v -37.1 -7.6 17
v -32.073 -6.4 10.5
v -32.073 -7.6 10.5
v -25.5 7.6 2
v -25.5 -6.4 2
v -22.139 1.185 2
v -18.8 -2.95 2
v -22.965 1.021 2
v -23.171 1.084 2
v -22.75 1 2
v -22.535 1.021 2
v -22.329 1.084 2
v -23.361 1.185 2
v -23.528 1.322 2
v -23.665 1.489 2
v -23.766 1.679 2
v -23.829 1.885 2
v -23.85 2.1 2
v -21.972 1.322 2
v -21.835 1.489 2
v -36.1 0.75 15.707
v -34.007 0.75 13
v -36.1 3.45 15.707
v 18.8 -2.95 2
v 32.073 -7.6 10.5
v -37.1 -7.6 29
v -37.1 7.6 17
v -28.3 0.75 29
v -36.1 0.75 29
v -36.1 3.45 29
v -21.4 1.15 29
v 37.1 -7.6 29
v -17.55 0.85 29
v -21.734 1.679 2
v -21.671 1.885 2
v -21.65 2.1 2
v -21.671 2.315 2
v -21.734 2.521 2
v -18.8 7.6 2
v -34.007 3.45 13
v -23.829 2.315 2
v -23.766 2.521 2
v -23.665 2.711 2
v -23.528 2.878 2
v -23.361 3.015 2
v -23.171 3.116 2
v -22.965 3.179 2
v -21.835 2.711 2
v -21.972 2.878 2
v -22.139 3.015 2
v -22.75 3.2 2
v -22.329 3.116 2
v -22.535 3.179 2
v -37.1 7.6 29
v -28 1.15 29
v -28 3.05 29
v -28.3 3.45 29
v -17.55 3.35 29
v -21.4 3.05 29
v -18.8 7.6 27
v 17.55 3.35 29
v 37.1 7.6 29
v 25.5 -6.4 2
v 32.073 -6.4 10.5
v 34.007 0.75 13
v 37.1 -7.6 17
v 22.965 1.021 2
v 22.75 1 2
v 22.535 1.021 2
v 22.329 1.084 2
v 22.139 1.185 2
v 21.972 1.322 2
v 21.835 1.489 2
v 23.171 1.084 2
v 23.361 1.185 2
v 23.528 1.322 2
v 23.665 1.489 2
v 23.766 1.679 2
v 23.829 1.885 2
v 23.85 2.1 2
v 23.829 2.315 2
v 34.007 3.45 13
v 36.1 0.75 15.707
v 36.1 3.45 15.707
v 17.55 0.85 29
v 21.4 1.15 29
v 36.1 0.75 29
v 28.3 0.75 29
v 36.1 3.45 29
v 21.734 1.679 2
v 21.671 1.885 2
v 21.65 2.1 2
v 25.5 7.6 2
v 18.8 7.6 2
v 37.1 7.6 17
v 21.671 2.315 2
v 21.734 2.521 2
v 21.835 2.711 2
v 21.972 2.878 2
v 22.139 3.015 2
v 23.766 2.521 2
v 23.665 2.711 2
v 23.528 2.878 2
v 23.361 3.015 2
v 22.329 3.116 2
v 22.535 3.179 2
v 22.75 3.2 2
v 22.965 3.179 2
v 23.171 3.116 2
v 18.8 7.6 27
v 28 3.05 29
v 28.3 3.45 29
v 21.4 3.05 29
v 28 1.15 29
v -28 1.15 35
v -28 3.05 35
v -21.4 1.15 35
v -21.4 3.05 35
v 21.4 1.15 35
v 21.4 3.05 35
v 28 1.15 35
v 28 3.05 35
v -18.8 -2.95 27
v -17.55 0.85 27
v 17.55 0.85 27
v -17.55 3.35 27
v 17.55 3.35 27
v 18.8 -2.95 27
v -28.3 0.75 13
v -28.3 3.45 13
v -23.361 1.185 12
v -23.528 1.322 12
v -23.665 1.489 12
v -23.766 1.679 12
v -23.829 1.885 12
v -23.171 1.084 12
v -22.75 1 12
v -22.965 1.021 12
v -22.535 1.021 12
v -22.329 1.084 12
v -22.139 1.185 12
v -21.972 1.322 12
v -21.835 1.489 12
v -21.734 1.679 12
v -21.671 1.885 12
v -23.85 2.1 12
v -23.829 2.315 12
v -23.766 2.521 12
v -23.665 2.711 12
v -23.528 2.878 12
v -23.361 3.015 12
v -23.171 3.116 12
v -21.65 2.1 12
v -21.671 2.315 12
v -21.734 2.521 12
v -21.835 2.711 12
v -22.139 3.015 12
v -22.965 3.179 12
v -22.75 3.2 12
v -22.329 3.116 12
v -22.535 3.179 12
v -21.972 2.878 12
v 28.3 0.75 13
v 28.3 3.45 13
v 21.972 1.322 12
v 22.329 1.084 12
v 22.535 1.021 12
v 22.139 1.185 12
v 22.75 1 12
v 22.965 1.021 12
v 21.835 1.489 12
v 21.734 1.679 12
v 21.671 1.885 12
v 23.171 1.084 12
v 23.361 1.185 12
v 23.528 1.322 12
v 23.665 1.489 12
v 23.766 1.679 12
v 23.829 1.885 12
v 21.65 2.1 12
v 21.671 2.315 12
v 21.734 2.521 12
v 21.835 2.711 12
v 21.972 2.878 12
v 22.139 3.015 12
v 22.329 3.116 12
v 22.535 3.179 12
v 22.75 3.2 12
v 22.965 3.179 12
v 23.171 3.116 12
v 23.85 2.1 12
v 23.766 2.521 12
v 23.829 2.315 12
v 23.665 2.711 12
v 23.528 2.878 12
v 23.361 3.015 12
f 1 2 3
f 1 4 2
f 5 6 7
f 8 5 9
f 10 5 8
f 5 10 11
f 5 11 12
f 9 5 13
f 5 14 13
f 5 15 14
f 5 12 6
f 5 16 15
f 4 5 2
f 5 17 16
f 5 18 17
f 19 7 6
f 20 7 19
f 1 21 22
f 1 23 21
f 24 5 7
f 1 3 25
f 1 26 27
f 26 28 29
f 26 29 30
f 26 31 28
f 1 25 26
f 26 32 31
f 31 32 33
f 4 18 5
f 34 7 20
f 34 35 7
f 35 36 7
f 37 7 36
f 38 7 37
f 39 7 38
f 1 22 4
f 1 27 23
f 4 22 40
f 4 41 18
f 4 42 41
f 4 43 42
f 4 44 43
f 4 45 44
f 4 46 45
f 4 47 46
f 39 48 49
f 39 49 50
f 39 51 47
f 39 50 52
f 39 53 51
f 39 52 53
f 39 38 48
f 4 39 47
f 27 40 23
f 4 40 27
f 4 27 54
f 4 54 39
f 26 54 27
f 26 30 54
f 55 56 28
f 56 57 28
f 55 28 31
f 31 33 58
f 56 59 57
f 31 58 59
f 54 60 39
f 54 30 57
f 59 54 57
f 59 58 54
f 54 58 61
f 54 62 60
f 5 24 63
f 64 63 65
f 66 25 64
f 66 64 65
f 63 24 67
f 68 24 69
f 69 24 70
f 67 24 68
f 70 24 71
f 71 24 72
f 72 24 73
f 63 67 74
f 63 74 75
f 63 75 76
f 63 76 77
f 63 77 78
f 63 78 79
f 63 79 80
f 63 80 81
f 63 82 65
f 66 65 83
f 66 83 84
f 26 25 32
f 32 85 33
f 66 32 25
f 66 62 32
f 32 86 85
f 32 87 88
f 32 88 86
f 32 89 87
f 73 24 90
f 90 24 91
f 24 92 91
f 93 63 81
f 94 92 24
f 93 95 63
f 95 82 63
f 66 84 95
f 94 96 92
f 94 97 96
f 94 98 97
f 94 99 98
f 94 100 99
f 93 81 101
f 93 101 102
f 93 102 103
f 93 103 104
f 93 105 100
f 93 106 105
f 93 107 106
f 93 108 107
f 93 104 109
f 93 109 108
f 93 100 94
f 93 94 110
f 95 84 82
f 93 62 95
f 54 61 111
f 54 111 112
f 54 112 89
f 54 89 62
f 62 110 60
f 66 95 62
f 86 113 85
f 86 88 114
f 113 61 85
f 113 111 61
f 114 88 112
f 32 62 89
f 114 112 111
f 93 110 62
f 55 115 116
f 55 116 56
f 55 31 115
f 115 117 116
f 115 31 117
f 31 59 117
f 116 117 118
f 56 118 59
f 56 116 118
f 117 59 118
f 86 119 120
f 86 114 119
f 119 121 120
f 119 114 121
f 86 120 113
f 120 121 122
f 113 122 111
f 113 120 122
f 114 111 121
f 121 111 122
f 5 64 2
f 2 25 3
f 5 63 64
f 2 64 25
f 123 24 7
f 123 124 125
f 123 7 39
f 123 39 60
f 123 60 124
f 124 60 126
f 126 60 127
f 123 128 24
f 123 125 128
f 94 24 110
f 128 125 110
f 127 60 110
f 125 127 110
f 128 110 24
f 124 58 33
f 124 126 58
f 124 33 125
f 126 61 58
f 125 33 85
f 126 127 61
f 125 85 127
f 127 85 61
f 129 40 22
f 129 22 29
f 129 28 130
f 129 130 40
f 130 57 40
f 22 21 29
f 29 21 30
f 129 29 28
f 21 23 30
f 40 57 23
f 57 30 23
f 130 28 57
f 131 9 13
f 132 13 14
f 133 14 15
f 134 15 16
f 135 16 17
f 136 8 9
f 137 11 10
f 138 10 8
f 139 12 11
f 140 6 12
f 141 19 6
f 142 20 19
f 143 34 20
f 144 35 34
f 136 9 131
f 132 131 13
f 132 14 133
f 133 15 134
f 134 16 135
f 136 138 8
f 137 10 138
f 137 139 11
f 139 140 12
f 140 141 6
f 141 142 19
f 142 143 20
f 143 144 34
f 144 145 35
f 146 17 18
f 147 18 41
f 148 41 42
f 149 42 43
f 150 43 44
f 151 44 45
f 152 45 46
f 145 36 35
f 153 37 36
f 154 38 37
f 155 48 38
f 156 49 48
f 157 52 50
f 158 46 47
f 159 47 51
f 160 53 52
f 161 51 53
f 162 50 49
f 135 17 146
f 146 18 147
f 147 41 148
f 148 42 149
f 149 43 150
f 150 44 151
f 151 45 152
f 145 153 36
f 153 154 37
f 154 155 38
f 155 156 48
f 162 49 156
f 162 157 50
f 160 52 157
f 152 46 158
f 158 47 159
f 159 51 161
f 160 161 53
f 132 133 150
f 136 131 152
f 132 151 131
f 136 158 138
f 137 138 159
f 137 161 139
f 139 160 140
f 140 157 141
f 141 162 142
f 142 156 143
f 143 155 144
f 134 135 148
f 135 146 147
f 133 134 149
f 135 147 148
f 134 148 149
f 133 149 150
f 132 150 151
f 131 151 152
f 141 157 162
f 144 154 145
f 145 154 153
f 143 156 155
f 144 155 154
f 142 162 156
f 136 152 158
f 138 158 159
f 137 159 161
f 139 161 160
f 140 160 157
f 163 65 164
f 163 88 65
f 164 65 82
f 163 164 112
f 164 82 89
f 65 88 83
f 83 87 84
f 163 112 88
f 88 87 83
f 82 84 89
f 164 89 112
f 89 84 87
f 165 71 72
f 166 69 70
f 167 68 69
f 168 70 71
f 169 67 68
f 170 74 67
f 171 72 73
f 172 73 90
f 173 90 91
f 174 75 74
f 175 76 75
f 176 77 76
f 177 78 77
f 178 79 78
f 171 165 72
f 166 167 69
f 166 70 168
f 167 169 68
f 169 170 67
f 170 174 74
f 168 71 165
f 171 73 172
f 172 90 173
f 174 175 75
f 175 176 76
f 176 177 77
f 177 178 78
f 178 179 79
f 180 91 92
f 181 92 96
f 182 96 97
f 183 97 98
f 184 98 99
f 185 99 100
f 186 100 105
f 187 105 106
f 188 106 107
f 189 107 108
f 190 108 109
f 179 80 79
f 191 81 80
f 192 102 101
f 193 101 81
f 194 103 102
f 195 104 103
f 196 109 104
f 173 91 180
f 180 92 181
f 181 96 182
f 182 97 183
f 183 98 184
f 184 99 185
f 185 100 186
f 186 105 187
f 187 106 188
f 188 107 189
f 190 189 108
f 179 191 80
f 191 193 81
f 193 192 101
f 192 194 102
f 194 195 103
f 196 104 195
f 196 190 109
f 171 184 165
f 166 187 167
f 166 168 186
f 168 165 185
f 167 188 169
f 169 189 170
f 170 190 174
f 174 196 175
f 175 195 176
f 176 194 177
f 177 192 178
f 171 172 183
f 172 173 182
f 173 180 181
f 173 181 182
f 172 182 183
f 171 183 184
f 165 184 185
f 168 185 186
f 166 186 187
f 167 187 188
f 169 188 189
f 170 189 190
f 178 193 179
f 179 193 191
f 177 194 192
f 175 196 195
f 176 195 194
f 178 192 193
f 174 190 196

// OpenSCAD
// Cartridge guide (cap) for slot B on pin headers, draft 5 (see ../guide-drawing/).
// Sleeve, slit, key holes and door openers taken from vcsslot.stl
// (RabbitEngineering, Thingiverse 618065, CC BY-NC).
// x = along the slot, y = across (side A negative, side B positive), z = up from the PCB.
// Print upright, feet on the bed.

slot_top   = 27.0;    // slot B top above the PCB (measured)
plate      = 2.0;     // closed top, rests on the slot
gap        = 2.0;     // gap under the feet; the screws pull the cap onto the slot
top        = slot_top + plate;
cap_l      = 74.2;    // sleeve length (vcsslot)
cap_w      = 15.2;    // sleeve width (vcsslot)
off        = 2.1;     // slit centre towards side B (vcsslot 2.06)
full_z     = 17.0;    // full length above this height
foot_x     = 25.5;    // half length of the foot
band       = 8.5;     // below step_z max. 8.5 from slot centre (free area 61 x 17)
step_z     = slot_top + plate - 18.5;   // cartridge shell bottom
cav_l      = 37.0 + 0.6;
cav_w      = 9.5 + 0.6;
slit_l     = 35.1;
slit_w     = 2.5;
nub_x0     = 28.3;  nub_x1 = 36.1;  nub_w = 2.7;  nub_depth = 16;
opn_x0     = 21.4;  opn_x1 = 28.0;  opn_t = 1.9;  opn_h = 6.0;
hole_x     = 22.75; screw_d = 2.2;  screw_depth = 10;

module body() {
    rotate([90, 0, 0]) translate([0, 0, -cap_w / 2])
        linear_extrude(cap_w)
            polygon([[-foot_x, gap], [-cap_l / 2, full_z], [-cap_l / 2, top],
                     [cap_l / 2, top], [cap_l / 2, full_z], [foot_x, gap]]);
}

difference() {
    union() {
        body();
        for (s = [-1, 1])
            translate([s > 0 ? opn_x0 : -opn_x1, off - opn_t / 2, top - 0.01])
                cube([opn_x1 - opn_x0, opn_t, opn_h + 0.01]);
    }
    // side A narrower below the cartridge shell
    translate([-50, -cap_w / 2 - 1, -1]) cube([100, (off - band) + cap_w / 2 + 1, step_z + 1]);
    // slot cavity, open towards side B
    translate([-cav_l / 2, off - cav_w / 2, -1]) cube([cav_l, cap_w, slot_top + 1]);
    // slit for the cartridge PCB
    translate([-slit_l / 2, off - slit_w / 2, slot_top - 1]) cube([slit_l, slit_w, plate + 2]);
    for (s = [-1, 1]) {
        // key holes for the cartridge nubs
        translate([s > 0 ? nub_x0 : -nub_x1, off - nub_w / 2, top - nub_depth]) cube([nub_x1 - nub_x0, nub_w, nub_depth + 1]);
        // M2.5 screw holes from below
        translate([s * hole_x, off, -1]) cylinder(d = screw_d, h = gap + screw_depth + 1, $fn = 32);
    }
}
